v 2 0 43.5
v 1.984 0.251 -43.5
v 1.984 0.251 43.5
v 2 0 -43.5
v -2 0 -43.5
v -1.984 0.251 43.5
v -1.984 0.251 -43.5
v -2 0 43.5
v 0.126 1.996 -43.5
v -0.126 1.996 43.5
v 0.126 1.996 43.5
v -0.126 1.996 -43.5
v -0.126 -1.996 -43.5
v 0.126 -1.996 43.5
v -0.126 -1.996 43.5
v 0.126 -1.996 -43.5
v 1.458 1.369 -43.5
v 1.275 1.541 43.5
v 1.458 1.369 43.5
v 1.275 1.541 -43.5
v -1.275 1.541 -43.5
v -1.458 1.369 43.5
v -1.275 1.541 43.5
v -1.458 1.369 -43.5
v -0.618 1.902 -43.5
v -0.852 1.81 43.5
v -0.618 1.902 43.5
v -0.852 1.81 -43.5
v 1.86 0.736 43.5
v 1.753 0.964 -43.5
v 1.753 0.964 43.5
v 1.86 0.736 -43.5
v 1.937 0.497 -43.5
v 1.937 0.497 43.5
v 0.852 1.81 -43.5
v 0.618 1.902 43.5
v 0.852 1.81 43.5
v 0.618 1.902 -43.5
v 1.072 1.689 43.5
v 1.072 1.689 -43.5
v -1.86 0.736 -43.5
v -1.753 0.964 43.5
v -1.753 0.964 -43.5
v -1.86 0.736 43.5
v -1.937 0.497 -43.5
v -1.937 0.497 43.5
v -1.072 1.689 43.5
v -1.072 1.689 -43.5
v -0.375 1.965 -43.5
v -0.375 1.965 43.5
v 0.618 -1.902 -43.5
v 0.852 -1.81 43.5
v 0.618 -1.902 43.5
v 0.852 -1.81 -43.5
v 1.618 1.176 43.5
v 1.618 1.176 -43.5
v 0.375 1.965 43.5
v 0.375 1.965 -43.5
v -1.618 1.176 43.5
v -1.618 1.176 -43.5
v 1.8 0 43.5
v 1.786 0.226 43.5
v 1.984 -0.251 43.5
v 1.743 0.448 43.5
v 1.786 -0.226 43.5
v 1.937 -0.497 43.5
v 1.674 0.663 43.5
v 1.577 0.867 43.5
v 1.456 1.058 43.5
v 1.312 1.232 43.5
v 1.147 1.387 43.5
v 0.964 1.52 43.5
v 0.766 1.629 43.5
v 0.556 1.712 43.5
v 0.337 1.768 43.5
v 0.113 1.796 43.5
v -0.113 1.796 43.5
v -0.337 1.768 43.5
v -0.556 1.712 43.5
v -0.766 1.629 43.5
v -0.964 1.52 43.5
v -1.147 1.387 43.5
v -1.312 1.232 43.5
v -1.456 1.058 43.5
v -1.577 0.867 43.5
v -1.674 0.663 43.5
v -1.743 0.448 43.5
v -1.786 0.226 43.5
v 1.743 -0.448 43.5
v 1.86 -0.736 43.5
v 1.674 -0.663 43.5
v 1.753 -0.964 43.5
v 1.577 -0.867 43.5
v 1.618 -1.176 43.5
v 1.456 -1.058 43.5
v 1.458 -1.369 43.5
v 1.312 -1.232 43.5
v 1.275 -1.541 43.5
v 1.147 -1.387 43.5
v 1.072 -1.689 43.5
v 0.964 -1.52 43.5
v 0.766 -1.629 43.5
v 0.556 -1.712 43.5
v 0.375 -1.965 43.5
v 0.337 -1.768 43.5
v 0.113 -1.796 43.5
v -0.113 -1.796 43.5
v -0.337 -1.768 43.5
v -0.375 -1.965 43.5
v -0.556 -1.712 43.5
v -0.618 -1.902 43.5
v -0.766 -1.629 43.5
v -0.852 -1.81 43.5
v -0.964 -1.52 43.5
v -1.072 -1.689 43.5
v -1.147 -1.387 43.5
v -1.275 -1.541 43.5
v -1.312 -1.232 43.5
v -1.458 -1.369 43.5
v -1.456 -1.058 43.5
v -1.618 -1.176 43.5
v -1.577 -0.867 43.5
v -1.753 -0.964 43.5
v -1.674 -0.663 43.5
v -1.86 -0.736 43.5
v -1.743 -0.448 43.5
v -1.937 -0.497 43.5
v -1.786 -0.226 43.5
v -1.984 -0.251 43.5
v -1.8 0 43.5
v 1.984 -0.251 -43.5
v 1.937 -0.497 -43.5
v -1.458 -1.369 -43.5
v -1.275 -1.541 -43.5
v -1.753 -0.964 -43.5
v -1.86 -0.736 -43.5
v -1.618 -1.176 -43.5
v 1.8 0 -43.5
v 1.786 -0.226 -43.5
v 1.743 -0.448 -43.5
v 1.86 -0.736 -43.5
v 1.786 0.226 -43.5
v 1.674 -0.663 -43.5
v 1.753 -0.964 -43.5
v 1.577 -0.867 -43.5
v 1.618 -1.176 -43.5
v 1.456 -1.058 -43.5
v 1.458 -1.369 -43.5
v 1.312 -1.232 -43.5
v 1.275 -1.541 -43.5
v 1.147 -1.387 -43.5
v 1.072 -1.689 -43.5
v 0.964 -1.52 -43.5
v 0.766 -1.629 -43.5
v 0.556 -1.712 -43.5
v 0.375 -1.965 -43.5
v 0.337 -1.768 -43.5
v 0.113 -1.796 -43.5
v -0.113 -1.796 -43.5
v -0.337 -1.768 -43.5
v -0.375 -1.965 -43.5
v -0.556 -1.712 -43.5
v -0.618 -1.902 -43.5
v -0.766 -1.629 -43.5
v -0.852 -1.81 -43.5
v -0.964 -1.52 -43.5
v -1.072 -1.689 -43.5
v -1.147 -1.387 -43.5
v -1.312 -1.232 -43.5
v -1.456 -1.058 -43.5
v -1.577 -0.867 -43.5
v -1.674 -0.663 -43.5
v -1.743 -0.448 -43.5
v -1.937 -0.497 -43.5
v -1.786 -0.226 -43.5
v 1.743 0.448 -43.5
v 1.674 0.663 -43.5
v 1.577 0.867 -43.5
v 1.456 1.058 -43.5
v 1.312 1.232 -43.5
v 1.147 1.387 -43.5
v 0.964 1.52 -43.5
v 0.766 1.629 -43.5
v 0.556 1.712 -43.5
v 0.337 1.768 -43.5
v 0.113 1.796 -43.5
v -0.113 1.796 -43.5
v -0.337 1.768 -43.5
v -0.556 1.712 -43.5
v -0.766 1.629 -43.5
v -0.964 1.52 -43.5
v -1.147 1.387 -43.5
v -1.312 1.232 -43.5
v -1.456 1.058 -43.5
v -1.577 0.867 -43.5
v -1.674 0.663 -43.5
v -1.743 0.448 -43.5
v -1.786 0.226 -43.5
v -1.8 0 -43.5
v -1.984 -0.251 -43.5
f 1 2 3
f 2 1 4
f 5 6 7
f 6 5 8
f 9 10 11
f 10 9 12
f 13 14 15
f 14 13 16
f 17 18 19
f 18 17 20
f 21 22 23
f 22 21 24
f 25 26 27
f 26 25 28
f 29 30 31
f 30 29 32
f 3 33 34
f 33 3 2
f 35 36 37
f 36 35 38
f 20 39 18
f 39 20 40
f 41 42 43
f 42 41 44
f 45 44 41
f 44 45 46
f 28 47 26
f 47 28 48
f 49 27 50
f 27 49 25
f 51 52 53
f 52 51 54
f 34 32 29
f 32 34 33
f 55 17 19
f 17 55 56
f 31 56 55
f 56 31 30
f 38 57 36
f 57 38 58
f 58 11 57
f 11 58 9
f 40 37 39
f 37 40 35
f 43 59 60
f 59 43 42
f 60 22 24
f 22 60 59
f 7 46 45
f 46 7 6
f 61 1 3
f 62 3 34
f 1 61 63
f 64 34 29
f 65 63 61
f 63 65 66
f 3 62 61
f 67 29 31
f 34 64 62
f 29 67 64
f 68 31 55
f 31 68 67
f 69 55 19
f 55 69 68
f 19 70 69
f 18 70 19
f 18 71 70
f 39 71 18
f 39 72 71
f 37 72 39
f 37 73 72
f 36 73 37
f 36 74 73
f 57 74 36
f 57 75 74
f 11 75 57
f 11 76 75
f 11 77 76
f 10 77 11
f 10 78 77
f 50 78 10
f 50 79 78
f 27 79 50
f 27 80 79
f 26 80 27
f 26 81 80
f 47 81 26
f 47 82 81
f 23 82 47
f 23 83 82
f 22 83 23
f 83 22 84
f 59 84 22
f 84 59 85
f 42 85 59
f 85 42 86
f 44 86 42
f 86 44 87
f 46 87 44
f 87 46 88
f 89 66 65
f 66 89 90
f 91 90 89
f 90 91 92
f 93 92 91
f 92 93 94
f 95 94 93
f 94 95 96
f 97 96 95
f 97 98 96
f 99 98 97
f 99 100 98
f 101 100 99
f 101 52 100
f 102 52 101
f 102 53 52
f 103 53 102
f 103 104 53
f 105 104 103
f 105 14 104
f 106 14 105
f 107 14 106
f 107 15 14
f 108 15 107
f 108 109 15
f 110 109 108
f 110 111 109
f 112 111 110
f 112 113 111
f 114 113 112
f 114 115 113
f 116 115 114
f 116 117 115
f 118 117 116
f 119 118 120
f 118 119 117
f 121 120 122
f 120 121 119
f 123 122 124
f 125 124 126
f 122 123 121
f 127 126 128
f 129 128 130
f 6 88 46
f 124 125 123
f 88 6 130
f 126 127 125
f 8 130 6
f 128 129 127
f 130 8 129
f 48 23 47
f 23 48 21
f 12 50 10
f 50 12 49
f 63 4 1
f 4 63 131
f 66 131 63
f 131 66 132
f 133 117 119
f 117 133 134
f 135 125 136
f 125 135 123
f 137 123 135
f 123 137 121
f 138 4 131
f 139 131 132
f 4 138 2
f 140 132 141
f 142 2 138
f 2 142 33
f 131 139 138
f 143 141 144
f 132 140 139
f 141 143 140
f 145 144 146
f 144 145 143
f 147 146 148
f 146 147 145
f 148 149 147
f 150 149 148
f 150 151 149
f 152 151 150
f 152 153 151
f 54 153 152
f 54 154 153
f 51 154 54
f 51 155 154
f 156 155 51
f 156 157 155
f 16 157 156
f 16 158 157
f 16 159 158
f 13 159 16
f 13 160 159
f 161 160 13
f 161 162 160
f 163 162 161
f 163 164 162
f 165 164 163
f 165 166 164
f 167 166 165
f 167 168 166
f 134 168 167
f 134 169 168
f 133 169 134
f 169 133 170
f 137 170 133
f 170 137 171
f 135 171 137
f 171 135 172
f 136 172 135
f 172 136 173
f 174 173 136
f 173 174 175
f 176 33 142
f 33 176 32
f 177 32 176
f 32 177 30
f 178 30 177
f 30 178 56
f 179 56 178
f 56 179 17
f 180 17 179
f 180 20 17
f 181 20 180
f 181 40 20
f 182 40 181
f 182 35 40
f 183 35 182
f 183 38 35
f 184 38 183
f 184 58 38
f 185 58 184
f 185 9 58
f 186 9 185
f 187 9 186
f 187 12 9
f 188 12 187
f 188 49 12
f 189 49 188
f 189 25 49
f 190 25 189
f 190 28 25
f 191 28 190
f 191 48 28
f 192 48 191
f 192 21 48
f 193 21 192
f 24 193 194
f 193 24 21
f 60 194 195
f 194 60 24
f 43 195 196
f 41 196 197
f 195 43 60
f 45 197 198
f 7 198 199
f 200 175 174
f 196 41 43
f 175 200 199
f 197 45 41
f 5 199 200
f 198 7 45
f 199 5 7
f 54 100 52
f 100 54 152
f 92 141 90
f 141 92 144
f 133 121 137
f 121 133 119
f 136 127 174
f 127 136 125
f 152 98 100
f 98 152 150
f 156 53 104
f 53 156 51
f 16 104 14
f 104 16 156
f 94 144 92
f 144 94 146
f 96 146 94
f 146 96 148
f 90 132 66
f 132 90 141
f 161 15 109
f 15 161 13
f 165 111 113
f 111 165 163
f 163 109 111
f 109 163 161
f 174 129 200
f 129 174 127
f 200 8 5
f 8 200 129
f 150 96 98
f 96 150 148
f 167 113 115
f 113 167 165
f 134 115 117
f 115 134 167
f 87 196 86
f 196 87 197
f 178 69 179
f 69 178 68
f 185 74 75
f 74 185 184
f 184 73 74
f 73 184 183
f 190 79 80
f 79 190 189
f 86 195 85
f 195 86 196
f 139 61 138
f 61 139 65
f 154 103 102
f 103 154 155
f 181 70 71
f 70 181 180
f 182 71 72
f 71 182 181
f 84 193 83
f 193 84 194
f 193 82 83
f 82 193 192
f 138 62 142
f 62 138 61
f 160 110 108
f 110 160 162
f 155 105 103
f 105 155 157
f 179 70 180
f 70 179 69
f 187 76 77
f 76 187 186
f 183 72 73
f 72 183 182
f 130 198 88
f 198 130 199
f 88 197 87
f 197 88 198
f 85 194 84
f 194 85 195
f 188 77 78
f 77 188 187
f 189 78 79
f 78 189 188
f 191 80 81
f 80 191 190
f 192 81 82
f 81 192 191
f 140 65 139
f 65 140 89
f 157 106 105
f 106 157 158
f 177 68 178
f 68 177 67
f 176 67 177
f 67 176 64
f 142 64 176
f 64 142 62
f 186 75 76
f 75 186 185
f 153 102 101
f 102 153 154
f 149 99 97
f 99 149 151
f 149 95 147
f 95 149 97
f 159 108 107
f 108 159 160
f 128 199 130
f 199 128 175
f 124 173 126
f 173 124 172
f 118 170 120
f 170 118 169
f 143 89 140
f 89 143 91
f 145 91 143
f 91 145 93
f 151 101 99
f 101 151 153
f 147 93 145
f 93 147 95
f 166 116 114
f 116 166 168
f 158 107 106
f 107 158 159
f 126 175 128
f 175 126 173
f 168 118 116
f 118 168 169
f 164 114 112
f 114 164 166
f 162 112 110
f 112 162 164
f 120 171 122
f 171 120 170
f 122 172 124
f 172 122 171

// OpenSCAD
$fn = 50;


difference() {
	union() {
		translate(v = [0, 0, -43.5000000000]) {
			cylinder(h = 87, r = 2.0000000000);
		}
	}
	union() {
		translate(v = [0, 0, -100.0000000000]) {
			cylinder(h = 200, r = 1.8000000000);
		}
	}
}
